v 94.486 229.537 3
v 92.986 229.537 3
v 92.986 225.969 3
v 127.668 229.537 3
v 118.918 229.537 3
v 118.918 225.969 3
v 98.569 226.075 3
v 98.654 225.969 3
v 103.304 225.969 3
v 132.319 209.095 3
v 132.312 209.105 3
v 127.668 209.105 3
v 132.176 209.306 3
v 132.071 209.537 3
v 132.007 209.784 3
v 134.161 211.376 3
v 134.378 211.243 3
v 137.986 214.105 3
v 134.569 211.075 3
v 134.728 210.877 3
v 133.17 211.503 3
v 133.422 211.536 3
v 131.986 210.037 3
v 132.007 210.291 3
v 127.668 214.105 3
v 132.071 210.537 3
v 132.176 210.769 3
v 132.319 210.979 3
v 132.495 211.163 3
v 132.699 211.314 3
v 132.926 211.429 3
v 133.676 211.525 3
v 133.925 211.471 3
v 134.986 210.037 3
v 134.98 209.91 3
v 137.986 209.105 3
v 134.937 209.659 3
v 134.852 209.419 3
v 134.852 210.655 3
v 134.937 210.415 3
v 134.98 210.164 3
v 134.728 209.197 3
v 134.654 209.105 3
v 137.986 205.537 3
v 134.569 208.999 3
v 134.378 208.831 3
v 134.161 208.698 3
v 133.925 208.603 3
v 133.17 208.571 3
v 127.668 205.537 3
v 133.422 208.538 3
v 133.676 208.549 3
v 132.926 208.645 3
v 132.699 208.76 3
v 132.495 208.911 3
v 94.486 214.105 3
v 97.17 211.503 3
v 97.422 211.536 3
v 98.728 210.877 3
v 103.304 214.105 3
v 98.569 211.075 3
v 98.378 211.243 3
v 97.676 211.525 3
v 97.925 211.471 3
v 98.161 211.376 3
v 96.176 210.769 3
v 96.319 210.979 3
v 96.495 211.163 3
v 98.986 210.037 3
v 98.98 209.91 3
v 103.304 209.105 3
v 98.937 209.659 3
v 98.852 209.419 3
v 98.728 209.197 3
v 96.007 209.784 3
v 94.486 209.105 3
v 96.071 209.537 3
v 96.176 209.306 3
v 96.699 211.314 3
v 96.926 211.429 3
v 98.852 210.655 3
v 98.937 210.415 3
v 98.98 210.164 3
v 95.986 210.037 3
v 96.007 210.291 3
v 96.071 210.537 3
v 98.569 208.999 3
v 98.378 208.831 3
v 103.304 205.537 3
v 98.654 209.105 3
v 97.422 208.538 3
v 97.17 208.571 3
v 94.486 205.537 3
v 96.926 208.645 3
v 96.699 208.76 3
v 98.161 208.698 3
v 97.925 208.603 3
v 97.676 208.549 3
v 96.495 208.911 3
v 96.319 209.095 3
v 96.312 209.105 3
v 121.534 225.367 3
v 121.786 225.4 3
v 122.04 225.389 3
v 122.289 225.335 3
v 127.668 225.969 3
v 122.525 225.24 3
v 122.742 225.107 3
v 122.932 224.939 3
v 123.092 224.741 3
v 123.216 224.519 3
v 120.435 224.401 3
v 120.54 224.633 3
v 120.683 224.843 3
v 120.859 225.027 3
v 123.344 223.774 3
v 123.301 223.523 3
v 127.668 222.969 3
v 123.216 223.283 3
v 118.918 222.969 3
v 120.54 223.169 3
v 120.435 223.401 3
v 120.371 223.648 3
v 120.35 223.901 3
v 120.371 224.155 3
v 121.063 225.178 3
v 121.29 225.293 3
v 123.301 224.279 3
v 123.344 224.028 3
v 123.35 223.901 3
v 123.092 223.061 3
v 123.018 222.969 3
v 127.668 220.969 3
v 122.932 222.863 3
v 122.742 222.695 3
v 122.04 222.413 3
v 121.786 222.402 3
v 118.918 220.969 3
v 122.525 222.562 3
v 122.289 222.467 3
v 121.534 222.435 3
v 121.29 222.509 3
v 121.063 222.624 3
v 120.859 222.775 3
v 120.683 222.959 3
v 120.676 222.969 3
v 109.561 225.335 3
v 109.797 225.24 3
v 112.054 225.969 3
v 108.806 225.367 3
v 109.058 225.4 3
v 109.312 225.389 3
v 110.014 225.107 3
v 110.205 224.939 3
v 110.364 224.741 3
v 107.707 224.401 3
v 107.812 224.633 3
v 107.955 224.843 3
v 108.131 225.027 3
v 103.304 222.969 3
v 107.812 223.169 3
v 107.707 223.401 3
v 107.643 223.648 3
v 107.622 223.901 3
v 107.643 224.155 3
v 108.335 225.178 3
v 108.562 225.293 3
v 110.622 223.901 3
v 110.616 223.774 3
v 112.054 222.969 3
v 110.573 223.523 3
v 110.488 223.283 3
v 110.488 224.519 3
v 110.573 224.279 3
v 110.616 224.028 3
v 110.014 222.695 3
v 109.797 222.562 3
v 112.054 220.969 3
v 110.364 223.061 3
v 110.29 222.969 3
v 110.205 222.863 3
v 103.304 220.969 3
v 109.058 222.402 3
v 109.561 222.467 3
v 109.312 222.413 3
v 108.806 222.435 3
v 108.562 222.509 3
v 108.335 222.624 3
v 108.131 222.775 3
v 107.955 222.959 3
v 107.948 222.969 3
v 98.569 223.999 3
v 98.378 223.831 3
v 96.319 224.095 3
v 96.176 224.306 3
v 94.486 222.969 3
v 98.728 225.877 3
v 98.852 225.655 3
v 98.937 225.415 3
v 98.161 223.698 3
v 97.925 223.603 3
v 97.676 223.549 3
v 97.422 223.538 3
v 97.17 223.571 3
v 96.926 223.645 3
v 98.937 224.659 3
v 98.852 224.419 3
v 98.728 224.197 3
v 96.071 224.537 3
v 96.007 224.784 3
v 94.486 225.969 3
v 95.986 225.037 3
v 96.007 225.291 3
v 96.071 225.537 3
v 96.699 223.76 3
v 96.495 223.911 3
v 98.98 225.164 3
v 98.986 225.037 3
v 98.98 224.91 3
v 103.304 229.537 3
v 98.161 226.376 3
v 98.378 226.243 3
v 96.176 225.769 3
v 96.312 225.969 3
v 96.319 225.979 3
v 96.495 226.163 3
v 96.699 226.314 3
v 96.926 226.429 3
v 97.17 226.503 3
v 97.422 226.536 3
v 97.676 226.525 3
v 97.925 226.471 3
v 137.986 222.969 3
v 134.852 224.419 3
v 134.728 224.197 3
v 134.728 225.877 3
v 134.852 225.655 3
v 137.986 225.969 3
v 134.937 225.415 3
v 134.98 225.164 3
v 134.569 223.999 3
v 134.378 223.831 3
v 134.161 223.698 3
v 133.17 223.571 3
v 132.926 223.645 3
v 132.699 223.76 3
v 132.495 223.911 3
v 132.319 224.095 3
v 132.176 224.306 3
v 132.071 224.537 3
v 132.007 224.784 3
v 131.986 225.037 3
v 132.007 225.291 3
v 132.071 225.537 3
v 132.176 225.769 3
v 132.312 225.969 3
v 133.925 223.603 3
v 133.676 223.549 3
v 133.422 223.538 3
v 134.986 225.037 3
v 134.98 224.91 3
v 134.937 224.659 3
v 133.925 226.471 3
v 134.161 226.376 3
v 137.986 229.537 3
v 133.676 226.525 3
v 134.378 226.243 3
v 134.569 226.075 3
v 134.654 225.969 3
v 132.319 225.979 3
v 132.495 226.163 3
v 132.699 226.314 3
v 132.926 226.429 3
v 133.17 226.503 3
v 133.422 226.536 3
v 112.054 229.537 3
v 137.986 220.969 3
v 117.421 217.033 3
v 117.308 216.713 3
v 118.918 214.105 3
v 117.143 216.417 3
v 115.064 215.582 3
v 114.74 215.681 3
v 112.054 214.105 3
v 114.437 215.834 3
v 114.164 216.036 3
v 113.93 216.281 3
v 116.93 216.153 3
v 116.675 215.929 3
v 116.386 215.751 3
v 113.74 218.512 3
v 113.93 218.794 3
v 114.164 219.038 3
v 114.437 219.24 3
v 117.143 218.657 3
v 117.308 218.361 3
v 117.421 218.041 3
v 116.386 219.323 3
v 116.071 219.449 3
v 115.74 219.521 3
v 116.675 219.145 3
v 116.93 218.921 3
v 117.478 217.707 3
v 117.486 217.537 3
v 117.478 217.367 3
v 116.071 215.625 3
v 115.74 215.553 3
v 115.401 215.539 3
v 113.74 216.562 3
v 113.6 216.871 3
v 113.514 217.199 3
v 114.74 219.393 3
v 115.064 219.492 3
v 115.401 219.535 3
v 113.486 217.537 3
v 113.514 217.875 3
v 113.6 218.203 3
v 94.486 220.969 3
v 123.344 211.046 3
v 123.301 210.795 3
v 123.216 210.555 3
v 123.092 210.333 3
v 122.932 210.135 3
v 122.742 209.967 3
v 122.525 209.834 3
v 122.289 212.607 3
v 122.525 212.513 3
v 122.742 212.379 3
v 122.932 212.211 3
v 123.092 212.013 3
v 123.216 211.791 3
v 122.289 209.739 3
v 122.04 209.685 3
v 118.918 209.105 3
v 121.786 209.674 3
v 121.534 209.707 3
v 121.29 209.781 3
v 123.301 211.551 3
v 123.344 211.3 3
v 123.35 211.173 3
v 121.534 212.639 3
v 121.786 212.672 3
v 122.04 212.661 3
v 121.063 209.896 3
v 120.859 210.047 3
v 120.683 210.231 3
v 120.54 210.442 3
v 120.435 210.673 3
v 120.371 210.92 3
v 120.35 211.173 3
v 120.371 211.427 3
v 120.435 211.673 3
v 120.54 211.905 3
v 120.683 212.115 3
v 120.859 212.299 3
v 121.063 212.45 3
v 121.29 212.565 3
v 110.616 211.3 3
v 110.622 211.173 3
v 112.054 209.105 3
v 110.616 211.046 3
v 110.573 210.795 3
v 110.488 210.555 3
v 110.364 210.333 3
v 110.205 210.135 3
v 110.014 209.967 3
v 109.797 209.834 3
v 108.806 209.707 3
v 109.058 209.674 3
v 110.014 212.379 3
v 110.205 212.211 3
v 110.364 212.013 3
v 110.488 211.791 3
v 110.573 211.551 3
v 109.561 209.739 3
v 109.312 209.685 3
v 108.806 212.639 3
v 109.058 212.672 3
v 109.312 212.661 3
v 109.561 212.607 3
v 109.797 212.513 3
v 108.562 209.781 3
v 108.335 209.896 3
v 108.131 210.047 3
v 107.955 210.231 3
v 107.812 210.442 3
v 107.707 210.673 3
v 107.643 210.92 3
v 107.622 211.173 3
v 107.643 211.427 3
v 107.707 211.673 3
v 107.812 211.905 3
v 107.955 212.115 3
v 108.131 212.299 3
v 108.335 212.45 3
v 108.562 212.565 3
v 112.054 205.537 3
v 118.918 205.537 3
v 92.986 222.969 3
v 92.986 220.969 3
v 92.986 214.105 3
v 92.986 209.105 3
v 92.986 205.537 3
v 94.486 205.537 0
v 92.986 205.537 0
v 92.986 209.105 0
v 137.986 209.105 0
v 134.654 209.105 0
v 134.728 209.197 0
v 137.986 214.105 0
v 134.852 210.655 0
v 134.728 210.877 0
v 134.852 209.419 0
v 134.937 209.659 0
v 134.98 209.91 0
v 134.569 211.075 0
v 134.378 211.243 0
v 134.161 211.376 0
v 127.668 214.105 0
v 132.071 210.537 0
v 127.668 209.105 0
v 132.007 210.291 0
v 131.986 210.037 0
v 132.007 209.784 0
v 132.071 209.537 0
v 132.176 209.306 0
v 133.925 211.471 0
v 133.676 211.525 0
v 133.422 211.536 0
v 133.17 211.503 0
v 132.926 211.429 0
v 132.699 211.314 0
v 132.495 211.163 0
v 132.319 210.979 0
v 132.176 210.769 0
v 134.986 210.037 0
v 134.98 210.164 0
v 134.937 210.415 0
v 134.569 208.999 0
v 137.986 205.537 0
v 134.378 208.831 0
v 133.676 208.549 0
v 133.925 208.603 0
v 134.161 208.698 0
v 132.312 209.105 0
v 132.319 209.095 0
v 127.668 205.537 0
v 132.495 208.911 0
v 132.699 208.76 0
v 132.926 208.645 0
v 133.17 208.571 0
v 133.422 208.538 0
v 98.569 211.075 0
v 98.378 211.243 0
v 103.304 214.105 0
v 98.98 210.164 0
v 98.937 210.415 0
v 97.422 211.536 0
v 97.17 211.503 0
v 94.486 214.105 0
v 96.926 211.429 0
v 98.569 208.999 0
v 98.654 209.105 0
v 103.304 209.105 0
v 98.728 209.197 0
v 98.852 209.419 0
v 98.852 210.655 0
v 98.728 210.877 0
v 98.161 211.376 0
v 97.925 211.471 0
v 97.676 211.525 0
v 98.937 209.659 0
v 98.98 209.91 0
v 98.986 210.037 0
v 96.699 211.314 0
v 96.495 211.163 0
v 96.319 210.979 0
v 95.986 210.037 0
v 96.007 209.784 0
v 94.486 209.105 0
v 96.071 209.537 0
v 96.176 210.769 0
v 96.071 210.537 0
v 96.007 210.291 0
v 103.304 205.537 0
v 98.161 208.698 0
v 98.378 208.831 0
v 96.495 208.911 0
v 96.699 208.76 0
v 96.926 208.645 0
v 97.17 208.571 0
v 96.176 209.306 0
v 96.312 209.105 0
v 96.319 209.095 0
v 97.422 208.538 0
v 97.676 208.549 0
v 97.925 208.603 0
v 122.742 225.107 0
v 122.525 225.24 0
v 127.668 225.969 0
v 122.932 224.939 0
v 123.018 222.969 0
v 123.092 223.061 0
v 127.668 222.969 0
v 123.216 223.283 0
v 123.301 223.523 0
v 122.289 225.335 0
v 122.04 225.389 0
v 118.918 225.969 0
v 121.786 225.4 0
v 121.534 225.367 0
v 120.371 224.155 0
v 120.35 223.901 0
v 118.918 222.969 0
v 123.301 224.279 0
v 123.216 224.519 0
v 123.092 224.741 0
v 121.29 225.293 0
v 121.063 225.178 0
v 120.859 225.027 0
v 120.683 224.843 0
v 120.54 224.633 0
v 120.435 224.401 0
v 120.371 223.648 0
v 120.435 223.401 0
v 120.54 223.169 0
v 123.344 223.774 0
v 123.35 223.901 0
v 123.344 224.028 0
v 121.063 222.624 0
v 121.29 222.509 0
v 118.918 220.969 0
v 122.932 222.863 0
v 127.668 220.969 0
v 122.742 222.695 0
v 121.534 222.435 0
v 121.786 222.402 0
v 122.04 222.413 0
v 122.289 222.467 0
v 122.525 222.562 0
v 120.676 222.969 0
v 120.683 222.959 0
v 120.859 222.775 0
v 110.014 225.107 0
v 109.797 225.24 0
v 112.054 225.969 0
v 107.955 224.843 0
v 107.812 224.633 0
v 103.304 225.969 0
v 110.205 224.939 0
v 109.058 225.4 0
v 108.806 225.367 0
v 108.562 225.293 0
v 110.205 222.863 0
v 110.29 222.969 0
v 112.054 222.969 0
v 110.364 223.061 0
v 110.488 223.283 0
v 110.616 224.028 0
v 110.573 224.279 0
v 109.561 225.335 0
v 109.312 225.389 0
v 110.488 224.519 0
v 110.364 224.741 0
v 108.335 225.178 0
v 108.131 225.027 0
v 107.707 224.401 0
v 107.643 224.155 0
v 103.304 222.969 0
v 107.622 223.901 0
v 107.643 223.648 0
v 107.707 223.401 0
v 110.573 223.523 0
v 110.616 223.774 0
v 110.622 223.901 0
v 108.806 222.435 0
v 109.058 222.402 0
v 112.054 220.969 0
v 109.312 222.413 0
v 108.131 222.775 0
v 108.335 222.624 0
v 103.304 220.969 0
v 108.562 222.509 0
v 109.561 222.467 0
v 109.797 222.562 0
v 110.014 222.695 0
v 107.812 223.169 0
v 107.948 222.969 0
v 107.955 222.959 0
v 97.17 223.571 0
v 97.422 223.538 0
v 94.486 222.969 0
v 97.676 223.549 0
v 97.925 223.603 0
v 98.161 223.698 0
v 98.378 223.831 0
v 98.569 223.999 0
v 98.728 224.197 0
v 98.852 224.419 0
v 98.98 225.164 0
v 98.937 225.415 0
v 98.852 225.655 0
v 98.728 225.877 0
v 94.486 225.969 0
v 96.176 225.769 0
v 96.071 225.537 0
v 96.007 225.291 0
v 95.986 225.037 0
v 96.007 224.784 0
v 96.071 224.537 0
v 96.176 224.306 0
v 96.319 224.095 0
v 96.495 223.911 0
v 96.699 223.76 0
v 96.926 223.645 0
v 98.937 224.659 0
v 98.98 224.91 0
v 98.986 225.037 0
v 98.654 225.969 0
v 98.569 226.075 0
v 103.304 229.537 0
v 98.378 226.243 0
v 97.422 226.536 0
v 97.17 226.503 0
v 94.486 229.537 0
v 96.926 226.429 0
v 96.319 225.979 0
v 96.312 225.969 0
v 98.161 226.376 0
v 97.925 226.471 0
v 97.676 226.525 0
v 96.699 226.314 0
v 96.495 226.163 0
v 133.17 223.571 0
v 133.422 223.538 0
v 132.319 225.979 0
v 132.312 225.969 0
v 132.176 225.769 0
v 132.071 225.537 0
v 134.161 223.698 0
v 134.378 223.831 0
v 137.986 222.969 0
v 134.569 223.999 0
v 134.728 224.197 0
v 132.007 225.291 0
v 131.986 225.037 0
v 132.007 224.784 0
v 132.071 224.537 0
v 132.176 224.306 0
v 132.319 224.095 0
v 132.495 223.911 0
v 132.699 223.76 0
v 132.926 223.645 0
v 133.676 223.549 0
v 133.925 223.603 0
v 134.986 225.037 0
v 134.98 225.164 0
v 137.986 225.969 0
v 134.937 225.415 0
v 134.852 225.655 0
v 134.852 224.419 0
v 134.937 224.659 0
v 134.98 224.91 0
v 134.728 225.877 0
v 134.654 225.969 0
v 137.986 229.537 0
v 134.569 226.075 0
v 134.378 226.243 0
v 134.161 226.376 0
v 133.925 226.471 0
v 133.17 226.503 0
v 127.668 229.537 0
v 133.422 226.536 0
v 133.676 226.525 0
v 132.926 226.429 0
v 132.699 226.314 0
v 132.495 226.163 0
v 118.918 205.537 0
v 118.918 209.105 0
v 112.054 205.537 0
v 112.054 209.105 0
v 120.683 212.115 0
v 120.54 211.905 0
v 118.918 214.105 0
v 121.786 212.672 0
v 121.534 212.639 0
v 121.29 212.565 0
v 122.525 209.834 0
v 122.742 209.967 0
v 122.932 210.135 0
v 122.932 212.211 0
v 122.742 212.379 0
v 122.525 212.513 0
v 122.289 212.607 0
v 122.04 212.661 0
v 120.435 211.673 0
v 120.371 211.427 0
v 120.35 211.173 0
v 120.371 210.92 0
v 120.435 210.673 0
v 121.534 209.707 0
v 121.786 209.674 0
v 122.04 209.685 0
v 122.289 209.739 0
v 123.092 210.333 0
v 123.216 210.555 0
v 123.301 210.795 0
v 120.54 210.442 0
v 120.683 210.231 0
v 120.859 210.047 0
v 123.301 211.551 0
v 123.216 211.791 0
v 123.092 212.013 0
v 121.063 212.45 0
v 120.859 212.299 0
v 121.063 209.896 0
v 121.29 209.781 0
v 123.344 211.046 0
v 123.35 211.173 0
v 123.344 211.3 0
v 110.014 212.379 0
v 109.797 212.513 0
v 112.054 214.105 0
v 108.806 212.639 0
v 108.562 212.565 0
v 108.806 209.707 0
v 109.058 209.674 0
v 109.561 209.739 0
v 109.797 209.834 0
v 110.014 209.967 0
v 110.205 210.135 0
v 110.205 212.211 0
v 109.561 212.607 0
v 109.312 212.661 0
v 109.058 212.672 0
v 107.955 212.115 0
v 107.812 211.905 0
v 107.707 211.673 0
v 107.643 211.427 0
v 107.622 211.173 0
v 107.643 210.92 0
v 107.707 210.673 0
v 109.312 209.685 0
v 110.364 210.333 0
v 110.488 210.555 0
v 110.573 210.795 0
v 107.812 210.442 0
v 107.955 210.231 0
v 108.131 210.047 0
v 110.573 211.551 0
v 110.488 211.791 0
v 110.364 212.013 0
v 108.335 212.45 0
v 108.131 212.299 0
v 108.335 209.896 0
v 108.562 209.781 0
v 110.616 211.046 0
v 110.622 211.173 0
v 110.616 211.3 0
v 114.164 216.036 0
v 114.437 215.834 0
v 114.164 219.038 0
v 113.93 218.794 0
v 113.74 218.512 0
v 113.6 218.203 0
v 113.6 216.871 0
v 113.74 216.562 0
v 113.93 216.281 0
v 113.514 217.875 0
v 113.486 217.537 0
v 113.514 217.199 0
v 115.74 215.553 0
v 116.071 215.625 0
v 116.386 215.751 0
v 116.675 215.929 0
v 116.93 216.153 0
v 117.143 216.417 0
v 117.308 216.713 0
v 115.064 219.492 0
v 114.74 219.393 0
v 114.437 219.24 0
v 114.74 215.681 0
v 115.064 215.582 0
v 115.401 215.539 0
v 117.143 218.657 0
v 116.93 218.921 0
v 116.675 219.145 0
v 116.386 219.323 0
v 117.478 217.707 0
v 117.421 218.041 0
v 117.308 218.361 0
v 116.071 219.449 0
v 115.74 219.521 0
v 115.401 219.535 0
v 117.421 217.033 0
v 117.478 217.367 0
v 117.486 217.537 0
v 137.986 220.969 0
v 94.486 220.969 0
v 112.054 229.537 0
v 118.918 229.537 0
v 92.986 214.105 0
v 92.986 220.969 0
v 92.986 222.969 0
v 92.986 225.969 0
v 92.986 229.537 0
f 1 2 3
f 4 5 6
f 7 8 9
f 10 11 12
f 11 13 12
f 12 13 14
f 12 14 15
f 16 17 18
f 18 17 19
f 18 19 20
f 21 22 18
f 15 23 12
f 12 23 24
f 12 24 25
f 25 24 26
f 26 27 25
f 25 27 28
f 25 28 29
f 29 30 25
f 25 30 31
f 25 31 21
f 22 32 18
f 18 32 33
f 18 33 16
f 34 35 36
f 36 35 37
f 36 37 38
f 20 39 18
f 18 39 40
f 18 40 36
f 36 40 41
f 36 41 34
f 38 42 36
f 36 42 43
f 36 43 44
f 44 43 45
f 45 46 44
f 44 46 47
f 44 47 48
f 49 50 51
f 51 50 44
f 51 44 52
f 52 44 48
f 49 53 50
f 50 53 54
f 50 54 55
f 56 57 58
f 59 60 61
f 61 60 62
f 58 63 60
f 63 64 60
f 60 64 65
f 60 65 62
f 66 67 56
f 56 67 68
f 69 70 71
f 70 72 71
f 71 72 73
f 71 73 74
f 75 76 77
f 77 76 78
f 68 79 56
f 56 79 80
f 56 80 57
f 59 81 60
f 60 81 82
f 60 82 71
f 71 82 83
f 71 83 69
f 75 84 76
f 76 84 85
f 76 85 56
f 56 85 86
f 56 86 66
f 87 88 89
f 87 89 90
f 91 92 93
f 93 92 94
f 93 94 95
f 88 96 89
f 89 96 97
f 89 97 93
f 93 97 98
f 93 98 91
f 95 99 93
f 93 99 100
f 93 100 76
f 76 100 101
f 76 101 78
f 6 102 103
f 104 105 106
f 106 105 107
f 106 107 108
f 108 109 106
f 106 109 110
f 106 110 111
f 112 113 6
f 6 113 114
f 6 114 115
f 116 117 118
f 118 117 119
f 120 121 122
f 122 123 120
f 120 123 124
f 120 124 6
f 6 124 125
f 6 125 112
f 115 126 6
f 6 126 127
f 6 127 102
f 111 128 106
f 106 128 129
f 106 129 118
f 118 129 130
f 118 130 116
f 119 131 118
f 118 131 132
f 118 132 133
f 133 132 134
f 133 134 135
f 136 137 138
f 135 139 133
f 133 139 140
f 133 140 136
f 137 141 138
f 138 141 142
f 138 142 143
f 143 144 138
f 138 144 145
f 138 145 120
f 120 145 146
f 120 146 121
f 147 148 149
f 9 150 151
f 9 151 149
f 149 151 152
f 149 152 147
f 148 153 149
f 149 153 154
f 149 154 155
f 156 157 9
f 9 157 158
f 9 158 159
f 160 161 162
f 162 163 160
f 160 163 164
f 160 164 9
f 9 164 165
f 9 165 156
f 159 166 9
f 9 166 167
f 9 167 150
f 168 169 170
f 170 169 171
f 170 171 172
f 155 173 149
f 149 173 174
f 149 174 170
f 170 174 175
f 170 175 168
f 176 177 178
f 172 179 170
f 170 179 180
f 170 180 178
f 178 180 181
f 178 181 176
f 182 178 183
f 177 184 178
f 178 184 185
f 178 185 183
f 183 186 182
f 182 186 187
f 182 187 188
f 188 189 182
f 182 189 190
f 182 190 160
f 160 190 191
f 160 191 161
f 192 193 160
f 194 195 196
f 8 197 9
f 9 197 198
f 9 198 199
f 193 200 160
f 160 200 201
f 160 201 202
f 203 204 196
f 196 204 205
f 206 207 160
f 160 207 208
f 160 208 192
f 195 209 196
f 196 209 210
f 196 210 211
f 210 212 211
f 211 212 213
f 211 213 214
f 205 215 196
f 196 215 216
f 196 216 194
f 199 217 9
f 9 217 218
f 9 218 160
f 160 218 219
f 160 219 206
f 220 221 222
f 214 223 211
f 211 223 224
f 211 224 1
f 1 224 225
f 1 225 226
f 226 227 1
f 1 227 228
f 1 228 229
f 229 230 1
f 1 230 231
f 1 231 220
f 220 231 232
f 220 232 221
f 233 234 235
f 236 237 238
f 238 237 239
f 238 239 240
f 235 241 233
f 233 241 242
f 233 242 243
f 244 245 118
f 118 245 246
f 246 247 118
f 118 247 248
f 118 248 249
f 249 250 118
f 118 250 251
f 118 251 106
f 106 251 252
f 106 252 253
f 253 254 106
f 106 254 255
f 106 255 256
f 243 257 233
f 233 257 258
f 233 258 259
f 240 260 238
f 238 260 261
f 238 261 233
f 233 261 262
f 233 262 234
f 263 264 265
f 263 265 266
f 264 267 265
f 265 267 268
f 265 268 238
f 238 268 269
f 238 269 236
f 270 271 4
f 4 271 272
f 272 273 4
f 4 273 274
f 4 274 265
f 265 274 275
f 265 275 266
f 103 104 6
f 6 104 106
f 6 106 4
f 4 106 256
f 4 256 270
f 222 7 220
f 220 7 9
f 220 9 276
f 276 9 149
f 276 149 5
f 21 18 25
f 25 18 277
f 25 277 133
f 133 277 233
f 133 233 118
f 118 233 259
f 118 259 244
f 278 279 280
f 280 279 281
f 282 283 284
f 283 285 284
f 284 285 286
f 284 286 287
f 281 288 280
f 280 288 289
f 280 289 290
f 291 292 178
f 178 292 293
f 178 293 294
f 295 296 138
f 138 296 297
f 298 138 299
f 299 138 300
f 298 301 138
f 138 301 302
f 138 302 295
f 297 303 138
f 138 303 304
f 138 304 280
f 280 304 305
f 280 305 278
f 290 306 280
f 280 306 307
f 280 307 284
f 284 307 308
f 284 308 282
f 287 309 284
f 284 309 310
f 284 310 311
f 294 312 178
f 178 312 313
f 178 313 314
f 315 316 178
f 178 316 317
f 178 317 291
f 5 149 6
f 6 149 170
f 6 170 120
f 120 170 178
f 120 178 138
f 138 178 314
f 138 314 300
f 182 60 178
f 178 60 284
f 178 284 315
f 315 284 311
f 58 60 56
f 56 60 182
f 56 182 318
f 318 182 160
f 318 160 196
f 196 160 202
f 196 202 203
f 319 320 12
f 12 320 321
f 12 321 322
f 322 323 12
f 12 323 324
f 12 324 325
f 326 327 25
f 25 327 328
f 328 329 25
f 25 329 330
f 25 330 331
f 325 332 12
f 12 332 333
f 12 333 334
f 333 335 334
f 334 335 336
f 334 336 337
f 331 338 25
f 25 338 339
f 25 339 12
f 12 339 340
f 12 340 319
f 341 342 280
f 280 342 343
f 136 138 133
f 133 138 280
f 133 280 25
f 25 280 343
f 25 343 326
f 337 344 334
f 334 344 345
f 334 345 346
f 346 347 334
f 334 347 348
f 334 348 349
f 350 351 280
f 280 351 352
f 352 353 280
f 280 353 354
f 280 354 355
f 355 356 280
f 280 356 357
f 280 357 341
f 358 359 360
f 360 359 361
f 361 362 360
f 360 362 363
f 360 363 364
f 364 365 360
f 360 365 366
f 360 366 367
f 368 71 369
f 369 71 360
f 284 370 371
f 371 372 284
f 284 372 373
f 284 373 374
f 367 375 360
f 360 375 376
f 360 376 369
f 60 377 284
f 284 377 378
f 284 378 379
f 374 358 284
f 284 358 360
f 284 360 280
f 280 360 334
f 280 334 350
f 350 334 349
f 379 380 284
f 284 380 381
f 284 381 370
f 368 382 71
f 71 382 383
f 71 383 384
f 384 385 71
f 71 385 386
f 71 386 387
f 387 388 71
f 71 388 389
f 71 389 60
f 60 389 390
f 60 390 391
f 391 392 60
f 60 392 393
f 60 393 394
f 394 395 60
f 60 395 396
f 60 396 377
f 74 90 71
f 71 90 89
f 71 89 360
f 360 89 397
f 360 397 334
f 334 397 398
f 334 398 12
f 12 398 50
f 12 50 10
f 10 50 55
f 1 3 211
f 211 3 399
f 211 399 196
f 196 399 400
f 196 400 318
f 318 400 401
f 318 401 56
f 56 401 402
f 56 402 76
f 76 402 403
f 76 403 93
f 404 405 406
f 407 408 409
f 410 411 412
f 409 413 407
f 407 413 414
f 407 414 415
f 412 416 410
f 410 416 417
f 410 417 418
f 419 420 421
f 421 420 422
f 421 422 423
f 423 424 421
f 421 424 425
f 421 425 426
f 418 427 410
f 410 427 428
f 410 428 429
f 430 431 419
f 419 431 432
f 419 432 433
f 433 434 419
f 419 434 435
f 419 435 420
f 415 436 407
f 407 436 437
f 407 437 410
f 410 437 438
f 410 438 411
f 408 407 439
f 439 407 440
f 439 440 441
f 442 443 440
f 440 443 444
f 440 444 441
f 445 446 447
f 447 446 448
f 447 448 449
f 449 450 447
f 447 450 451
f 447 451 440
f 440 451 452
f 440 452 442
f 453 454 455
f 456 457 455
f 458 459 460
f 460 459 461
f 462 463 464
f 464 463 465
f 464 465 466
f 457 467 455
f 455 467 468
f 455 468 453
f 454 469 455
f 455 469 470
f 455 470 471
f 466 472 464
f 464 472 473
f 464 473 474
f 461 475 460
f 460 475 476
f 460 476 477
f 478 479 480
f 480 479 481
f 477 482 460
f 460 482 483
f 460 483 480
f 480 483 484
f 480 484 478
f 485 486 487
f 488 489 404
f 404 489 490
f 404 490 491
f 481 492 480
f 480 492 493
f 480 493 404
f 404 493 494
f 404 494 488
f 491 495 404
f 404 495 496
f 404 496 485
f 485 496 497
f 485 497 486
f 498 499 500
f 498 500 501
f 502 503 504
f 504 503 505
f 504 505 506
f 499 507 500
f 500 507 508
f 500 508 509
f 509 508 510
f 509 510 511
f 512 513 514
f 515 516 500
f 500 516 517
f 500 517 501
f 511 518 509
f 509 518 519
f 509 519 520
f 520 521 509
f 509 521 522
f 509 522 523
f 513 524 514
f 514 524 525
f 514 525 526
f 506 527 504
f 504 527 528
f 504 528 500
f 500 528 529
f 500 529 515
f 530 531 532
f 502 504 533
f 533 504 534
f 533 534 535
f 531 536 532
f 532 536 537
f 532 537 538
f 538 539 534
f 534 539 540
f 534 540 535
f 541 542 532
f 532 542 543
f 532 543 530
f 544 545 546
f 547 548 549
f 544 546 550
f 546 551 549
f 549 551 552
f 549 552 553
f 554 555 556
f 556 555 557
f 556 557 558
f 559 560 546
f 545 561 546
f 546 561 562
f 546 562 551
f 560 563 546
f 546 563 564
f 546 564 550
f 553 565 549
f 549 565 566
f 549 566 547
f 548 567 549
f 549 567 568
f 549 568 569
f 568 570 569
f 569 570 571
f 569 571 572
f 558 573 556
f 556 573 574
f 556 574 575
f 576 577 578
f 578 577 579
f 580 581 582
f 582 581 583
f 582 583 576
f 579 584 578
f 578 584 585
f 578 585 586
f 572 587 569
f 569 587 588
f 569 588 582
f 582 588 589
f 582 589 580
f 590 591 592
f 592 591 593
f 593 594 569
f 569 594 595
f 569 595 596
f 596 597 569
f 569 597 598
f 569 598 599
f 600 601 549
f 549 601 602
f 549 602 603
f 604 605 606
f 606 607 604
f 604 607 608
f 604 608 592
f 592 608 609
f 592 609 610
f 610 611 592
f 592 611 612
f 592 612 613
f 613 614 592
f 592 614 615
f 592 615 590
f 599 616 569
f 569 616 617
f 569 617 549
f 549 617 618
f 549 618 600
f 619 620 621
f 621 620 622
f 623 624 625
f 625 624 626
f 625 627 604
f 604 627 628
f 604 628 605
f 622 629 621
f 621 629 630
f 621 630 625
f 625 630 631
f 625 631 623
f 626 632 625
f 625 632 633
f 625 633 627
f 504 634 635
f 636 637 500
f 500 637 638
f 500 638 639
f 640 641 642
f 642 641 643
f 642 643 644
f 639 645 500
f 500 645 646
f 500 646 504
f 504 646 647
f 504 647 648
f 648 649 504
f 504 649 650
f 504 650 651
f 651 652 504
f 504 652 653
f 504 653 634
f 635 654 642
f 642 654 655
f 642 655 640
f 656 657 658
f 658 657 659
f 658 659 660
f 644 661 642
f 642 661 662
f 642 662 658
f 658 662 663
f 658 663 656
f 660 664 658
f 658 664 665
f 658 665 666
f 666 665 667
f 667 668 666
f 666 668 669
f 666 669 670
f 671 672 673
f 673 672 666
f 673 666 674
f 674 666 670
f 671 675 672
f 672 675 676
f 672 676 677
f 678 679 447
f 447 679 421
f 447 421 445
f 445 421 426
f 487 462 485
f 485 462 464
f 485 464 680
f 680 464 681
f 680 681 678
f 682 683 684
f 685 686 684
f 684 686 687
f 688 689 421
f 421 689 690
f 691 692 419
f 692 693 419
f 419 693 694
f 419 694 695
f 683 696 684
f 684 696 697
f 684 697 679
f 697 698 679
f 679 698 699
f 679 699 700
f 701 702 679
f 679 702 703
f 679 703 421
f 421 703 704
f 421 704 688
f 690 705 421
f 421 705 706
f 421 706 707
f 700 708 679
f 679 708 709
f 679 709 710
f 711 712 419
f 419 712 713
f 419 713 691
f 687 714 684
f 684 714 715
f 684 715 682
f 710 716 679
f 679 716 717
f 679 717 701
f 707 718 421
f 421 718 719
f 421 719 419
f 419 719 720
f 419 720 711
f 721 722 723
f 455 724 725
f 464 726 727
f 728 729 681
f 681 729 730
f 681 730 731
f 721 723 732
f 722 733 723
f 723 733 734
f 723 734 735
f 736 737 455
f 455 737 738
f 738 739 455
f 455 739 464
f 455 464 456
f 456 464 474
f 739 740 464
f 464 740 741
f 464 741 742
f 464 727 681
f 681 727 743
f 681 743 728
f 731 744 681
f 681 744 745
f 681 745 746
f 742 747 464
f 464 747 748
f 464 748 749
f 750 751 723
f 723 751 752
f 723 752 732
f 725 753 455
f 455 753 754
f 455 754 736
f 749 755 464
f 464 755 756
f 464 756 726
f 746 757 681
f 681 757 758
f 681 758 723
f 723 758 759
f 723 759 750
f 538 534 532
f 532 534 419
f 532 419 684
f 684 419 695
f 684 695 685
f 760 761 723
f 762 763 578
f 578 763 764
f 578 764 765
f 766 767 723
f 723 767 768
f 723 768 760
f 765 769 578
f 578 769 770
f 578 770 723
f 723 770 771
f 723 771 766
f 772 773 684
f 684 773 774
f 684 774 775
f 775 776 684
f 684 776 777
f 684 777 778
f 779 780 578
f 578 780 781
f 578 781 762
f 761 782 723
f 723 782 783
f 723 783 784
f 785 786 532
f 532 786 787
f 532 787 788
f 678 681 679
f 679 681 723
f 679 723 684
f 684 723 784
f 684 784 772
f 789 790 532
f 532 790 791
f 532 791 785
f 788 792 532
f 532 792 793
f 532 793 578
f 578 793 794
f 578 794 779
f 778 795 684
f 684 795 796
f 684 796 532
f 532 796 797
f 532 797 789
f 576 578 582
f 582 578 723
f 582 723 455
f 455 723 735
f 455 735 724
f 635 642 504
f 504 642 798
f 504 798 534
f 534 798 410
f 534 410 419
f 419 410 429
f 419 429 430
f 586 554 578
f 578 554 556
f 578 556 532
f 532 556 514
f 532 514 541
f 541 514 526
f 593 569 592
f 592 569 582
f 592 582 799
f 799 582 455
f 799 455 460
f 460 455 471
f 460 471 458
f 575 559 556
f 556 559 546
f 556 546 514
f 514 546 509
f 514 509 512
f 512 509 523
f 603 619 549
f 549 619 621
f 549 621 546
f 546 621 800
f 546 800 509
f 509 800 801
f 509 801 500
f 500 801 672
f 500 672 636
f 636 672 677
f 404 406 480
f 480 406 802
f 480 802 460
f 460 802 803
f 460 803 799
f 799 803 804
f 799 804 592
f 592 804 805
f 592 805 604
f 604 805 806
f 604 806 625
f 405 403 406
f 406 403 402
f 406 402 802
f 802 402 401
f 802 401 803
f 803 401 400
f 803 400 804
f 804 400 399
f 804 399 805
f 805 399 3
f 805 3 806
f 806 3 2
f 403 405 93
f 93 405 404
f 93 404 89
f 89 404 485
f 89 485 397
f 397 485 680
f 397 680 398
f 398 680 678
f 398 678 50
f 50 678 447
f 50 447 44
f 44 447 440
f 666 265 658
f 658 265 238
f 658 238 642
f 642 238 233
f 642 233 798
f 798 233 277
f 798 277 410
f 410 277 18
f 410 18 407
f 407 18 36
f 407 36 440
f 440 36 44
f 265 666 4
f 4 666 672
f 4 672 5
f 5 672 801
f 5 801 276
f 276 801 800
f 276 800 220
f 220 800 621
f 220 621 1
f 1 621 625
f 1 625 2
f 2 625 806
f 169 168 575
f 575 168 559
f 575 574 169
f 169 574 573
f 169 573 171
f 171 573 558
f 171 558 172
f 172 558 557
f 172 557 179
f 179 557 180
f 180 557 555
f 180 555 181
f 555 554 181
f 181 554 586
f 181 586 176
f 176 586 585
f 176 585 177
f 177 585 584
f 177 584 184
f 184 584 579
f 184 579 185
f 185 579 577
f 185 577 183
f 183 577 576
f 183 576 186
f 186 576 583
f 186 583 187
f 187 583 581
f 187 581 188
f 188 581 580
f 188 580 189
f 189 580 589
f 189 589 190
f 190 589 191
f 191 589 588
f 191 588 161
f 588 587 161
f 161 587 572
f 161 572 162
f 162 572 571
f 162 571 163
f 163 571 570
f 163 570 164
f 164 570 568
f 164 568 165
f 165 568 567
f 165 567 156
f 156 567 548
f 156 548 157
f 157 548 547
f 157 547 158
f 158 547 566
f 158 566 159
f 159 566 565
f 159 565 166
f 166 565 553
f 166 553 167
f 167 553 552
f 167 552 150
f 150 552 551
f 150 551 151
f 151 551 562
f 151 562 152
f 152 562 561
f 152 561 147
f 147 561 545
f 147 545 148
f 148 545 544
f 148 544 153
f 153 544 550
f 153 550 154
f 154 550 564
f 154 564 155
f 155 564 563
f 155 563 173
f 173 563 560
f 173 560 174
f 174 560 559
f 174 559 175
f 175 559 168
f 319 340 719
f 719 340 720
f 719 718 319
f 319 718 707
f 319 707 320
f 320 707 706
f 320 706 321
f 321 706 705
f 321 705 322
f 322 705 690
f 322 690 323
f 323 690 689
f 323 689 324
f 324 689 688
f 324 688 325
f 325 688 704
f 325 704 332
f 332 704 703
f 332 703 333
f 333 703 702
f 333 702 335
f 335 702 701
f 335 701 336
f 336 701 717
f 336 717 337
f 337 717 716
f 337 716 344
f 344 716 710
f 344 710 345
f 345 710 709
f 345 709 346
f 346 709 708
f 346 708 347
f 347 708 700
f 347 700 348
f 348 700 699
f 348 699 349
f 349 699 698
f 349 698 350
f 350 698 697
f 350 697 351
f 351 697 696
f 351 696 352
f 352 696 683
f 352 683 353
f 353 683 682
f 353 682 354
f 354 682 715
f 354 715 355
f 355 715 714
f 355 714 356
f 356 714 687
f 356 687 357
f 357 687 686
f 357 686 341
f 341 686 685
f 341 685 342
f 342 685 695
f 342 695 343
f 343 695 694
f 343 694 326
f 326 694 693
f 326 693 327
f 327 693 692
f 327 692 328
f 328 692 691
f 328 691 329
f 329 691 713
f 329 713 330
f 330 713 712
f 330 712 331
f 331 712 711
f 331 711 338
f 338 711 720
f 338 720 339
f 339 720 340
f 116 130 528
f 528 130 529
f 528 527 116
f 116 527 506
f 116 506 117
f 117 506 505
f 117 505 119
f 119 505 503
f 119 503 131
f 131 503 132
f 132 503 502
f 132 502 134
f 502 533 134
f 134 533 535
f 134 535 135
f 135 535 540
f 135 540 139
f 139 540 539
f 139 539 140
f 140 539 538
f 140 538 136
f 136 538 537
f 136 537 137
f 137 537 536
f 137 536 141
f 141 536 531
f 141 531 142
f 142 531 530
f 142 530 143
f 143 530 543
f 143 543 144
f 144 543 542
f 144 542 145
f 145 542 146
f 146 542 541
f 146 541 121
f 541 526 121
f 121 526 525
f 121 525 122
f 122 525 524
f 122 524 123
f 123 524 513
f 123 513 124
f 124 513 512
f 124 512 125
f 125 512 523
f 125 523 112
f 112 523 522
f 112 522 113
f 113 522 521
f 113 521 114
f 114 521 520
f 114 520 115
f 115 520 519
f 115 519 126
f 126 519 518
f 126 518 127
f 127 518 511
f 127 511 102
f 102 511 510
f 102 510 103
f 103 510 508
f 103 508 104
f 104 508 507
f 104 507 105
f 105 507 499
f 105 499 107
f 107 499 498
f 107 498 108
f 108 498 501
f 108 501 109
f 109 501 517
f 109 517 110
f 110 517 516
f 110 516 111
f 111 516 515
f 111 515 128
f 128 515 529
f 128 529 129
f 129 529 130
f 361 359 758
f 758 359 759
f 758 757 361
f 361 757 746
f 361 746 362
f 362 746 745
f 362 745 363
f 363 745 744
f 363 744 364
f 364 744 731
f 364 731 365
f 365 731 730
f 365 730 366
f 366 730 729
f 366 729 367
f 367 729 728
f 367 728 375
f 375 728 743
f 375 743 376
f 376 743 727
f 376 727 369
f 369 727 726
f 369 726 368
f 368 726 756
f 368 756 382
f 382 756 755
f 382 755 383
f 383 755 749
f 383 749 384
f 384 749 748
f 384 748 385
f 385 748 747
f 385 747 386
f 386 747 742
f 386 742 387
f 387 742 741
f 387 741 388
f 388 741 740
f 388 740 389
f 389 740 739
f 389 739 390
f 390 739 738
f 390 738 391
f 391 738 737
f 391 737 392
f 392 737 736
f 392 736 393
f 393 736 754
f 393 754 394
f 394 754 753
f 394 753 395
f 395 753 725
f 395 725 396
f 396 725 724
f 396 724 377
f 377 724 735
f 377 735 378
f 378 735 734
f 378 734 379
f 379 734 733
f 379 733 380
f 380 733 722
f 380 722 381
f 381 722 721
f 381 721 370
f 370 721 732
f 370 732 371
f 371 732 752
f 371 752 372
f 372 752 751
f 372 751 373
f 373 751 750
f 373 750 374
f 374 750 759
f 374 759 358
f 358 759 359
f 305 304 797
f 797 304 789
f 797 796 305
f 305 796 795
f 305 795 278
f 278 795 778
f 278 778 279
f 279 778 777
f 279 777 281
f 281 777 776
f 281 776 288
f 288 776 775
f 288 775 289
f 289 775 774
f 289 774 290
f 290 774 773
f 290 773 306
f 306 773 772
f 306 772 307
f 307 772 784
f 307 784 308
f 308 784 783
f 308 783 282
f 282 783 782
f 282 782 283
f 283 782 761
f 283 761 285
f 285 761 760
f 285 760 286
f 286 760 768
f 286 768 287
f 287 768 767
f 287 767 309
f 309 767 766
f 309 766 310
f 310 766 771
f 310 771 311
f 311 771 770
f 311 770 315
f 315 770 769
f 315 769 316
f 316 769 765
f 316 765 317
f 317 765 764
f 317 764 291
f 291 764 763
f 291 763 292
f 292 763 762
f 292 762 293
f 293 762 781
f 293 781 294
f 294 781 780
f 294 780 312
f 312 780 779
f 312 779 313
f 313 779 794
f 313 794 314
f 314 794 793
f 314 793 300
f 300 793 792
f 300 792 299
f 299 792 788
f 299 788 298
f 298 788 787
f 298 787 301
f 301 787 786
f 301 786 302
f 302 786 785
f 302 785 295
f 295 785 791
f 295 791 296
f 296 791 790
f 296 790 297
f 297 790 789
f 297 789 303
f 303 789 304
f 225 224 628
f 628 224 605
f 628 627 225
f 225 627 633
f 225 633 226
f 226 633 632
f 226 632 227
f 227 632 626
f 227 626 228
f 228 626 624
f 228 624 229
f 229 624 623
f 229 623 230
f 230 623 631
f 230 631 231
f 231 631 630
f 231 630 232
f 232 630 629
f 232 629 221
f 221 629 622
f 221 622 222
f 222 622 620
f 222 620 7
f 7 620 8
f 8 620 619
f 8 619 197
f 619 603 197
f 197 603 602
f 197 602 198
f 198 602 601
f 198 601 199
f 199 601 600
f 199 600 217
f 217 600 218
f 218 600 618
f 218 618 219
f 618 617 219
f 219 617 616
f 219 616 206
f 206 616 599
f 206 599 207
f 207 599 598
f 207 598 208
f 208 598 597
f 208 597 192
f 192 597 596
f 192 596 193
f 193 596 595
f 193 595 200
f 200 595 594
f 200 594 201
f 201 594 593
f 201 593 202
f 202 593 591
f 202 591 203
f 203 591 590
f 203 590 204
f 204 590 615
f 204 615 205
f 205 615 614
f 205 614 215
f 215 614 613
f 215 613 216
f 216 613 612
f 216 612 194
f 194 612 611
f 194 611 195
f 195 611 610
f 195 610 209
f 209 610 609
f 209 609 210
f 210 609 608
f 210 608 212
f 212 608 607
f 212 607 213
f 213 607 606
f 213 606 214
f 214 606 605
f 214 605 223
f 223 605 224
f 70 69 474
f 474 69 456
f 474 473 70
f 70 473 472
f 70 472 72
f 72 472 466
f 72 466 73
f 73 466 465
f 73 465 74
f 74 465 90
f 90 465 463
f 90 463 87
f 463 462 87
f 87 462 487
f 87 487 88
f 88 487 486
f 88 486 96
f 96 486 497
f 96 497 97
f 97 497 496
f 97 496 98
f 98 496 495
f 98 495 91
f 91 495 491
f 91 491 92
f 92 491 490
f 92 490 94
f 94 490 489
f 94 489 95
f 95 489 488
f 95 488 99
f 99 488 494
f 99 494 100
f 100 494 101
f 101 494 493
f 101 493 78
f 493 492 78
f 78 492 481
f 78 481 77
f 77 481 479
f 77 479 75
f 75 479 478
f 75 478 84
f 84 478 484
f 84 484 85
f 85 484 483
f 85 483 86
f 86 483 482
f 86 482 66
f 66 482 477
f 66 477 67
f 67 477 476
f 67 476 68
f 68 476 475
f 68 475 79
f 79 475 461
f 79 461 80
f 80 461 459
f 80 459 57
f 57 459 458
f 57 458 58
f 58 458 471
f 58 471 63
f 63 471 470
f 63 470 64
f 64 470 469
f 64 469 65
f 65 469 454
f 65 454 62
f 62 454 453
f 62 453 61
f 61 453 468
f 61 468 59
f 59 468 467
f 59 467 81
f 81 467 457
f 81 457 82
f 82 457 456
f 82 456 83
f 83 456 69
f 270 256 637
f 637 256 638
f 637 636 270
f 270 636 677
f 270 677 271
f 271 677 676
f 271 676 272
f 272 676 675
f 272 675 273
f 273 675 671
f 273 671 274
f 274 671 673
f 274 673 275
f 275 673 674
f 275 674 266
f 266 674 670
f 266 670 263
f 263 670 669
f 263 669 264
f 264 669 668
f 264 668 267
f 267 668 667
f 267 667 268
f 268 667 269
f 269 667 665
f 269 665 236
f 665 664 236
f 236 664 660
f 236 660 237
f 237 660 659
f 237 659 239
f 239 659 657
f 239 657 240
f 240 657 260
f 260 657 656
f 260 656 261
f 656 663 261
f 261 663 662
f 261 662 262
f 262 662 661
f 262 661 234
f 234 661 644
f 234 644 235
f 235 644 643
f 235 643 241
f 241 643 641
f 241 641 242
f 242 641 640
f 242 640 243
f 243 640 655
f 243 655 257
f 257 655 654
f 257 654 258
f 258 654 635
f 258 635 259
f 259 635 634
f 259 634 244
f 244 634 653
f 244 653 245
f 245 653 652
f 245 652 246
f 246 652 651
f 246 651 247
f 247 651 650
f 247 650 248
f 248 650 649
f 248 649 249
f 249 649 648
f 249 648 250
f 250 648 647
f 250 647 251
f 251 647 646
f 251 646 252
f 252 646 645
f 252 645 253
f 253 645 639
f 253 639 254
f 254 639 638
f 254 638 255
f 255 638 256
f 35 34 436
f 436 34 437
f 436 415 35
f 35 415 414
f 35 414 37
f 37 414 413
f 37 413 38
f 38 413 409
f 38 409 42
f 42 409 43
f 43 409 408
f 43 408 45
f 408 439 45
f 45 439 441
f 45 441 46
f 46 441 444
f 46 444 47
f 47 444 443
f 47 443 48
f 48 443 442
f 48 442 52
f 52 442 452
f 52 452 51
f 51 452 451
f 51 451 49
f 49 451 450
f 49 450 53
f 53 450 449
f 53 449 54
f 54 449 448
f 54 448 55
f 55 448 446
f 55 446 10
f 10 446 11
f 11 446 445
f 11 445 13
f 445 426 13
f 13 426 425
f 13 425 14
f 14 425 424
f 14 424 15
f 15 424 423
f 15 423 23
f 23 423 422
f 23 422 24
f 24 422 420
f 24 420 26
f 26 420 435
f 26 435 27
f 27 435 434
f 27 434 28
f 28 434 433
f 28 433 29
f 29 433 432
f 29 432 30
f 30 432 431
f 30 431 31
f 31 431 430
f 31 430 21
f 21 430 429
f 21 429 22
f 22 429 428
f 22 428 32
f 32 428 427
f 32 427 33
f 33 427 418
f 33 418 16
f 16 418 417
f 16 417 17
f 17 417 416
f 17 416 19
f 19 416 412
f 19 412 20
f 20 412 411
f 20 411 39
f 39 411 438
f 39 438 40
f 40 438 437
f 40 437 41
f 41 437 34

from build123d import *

# Parameters (mm, degrees)
MODEL_R                 = 1.5
MODEL_R_2               = 2
SALIENTE_EXTRUIR1_DEPTH = 3


with BuildPart() as part:
    # Model → Saliente-Extruir1 (new body)
    with BuildSketch(Plane.XY):
        Polygon((92.985593985, 229.537066641), (137.985593985, 229.537057995), (137.985593985, 205.537057995), (92.985593985, 205.537066641), align=None)
        with Locations((109.121632955, 223.901023349)):
            Circle(MODEL_R, mode=Mode.SUBTRACT)
        with Locations((121.849555016, 211.173101287)):
            Circle(MODEL_R, mode=Mode.SUBTRACT)
        with Locations((121.849555016, 223.901023349)):
            Circle(MODEL_R, mode=Mode.SUBTRACT)
        with Locations((109.121632955, 211.173101287)):
            Circle(MODEL_R, mode=Mode.SUBTRACT)
        with Locations((115.485593985, 217.537062318)):
            Circle(MODEL_R_2, mode=Mode.SUBTRACT)
        with Locations((97.485593985, 225.037066641)):
            Circle(MODEL_R, mode=Mode.SUBTRACT)
        with Locations((97.485593985, 210.037066641)):
            Circle(MODEL_R, mode=Mode.SUBTRACT)
        with Locations((133.485593985, 225.037057995)):
            Circle(MODEL_R, mode=Mode.SUBTRACT)
        with Locations((133.485593985, 210.037057995)):
            Circle(MODEL_R, mode=Mode.SUBTRACT)
    extrude(amount=SALIENTE_EXTRUIR1_DEPTH)


solid = part.part
